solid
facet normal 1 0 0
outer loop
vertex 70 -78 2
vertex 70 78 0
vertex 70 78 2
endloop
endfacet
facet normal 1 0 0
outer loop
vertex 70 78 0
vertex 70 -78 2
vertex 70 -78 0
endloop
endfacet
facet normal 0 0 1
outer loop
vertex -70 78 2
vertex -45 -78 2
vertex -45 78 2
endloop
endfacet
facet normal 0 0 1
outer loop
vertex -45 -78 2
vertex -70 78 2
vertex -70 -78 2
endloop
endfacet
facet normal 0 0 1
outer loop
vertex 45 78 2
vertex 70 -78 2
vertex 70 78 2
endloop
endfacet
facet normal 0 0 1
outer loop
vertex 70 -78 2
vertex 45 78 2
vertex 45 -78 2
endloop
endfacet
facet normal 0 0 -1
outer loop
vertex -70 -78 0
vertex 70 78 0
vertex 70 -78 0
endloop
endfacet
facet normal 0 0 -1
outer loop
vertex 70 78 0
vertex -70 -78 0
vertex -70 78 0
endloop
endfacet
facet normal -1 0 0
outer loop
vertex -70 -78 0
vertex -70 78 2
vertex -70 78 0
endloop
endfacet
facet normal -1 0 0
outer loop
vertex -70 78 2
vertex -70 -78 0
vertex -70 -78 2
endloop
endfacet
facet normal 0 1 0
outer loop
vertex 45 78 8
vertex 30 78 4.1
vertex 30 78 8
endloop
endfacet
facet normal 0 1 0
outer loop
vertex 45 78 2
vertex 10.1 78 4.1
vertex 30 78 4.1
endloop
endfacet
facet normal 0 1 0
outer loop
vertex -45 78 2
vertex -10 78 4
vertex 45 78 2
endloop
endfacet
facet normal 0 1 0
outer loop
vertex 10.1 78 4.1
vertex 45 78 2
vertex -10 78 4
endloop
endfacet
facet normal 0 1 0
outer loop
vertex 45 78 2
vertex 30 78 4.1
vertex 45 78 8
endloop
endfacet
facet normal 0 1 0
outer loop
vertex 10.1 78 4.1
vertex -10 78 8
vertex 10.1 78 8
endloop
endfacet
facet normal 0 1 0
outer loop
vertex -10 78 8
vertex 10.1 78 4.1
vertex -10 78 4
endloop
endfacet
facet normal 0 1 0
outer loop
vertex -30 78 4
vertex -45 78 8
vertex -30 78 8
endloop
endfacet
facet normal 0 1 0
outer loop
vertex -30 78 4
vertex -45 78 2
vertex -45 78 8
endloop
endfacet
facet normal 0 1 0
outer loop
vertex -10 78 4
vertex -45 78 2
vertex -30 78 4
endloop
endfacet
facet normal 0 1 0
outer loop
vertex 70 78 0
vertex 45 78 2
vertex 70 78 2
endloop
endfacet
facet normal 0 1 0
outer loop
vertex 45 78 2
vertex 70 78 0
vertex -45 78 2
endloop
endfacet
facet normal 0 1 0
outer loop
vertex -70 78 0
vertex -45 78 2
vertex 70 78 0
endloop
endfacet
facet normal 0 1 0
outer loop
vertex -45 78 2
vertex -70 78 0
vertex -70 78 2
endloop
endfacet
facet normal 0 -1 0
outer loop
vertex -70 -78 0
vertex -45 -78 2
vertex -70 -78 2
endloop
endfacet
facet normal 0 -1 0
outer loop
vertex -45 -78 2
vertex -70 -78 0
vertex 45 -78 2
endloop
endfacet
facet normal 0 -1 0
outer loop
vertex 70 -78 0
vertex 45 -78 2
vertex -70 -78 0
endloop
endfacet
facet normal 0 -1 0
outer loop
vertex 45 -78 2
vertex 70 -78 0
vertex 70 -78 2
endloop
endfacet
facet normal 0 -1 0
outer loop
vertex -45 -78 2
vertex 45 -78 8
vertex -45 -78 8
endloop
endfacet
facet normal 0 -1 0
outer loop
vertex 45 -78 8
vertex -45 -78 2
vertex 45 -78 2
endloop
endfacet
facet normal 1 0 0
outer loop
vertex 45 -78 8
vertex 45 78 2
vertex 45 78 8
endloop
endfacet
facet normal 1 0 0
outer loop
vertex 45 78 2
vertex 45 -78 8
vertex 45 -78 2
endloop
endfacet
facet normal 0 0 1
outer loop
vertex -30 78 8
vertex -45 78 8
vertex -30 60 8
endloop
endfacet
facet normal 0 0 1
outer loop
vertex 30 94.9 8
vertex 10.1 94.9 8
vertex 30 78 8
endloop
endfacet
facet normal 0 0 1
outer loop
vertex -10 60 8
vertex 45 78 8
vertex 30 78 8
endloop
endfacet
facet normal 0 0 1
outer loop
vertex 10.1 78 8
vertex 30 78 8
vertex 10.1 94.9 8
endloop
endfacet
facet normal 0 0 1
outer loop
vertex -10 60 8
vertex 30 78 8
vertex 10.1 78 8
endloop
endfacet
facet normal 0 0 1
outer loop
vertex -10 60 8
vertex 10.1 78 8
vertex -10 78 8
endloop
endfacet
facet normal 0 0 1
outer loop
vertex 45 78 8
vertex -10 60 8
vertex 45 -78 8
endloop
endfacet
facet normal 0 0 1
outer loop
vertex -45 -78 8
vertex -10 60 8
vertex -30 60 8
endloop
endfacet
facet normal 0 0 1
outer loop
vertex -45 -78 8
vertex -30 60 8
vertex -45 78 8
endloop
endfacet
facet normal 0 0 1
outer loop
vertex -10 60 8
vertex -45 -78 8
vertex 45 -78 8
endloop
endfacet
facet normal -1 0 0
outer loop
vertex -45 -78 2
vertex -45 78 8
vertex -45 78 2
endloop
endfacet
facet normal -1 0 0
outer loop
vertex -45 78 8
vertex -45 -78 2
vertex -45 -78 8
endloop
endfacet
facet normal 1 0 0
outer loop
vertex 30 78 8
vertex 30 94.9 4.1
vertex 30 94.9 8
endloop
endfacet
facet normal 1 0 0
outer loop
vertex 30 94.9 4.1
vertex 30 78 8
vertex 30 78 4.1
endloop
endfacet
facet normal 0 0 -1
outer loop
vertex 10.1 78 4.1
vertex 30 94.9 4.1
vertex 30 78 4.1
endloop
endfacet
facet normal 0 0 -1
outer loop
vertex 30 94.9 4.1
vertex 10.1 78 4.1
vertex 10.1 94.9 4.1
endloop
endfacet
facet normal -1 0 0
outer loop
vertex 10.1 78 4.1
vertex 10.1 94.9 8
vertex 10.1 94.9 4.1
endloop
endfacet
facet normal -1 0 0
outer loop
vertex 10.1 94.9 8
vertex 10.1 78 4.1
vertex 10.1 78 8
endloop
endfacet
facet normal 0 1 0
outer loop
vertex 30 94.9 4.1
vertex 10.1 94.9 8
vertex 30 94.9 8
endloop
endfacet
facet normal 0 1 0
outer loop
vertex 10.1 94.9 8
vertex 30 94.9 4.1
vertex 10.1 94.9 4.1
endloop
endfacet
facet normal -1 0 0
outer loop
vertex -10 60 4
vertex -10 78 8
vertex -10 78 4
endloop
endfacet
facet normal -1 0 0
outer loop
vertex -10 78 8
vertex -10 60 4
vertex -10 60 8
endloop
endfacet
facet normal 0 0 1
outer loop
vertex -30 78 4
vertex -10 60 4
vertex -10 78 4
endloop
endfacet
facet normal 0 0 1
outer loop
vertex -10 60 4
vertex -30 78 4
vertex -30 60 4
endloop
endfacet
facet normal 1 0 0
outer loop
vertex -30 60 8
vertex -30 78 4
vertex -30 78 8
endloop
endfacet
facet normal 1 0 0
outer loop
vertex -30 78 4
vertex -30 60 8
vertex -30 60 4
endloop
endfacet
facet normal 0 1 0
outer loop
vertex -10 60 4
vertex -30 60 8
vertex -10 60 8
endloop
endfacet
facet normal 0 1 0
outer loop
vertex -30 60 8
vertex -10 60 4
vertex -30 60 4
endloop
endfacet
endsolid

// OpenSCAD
depth = 156; // ~312 overall
glue_tolerance = 0.1;

difference() {
    union() {
        translate([-70, -depth/2, 0])
        cube([140, depth, 2], center = false);

        translate([-45, -depth/2, 0])
        cube([90, depth, 8], center = false);
        
        translate([10.1, 75, 4 + glue_tolerance])
        cube([20.0 - glue_tolerance, 20.0 - glue_tolerance, 4 - glue_tolerance], center = false);
    }
        
    translate([-30, 60, 4])
    cube([20, 20, 4.01], center = false);

};
